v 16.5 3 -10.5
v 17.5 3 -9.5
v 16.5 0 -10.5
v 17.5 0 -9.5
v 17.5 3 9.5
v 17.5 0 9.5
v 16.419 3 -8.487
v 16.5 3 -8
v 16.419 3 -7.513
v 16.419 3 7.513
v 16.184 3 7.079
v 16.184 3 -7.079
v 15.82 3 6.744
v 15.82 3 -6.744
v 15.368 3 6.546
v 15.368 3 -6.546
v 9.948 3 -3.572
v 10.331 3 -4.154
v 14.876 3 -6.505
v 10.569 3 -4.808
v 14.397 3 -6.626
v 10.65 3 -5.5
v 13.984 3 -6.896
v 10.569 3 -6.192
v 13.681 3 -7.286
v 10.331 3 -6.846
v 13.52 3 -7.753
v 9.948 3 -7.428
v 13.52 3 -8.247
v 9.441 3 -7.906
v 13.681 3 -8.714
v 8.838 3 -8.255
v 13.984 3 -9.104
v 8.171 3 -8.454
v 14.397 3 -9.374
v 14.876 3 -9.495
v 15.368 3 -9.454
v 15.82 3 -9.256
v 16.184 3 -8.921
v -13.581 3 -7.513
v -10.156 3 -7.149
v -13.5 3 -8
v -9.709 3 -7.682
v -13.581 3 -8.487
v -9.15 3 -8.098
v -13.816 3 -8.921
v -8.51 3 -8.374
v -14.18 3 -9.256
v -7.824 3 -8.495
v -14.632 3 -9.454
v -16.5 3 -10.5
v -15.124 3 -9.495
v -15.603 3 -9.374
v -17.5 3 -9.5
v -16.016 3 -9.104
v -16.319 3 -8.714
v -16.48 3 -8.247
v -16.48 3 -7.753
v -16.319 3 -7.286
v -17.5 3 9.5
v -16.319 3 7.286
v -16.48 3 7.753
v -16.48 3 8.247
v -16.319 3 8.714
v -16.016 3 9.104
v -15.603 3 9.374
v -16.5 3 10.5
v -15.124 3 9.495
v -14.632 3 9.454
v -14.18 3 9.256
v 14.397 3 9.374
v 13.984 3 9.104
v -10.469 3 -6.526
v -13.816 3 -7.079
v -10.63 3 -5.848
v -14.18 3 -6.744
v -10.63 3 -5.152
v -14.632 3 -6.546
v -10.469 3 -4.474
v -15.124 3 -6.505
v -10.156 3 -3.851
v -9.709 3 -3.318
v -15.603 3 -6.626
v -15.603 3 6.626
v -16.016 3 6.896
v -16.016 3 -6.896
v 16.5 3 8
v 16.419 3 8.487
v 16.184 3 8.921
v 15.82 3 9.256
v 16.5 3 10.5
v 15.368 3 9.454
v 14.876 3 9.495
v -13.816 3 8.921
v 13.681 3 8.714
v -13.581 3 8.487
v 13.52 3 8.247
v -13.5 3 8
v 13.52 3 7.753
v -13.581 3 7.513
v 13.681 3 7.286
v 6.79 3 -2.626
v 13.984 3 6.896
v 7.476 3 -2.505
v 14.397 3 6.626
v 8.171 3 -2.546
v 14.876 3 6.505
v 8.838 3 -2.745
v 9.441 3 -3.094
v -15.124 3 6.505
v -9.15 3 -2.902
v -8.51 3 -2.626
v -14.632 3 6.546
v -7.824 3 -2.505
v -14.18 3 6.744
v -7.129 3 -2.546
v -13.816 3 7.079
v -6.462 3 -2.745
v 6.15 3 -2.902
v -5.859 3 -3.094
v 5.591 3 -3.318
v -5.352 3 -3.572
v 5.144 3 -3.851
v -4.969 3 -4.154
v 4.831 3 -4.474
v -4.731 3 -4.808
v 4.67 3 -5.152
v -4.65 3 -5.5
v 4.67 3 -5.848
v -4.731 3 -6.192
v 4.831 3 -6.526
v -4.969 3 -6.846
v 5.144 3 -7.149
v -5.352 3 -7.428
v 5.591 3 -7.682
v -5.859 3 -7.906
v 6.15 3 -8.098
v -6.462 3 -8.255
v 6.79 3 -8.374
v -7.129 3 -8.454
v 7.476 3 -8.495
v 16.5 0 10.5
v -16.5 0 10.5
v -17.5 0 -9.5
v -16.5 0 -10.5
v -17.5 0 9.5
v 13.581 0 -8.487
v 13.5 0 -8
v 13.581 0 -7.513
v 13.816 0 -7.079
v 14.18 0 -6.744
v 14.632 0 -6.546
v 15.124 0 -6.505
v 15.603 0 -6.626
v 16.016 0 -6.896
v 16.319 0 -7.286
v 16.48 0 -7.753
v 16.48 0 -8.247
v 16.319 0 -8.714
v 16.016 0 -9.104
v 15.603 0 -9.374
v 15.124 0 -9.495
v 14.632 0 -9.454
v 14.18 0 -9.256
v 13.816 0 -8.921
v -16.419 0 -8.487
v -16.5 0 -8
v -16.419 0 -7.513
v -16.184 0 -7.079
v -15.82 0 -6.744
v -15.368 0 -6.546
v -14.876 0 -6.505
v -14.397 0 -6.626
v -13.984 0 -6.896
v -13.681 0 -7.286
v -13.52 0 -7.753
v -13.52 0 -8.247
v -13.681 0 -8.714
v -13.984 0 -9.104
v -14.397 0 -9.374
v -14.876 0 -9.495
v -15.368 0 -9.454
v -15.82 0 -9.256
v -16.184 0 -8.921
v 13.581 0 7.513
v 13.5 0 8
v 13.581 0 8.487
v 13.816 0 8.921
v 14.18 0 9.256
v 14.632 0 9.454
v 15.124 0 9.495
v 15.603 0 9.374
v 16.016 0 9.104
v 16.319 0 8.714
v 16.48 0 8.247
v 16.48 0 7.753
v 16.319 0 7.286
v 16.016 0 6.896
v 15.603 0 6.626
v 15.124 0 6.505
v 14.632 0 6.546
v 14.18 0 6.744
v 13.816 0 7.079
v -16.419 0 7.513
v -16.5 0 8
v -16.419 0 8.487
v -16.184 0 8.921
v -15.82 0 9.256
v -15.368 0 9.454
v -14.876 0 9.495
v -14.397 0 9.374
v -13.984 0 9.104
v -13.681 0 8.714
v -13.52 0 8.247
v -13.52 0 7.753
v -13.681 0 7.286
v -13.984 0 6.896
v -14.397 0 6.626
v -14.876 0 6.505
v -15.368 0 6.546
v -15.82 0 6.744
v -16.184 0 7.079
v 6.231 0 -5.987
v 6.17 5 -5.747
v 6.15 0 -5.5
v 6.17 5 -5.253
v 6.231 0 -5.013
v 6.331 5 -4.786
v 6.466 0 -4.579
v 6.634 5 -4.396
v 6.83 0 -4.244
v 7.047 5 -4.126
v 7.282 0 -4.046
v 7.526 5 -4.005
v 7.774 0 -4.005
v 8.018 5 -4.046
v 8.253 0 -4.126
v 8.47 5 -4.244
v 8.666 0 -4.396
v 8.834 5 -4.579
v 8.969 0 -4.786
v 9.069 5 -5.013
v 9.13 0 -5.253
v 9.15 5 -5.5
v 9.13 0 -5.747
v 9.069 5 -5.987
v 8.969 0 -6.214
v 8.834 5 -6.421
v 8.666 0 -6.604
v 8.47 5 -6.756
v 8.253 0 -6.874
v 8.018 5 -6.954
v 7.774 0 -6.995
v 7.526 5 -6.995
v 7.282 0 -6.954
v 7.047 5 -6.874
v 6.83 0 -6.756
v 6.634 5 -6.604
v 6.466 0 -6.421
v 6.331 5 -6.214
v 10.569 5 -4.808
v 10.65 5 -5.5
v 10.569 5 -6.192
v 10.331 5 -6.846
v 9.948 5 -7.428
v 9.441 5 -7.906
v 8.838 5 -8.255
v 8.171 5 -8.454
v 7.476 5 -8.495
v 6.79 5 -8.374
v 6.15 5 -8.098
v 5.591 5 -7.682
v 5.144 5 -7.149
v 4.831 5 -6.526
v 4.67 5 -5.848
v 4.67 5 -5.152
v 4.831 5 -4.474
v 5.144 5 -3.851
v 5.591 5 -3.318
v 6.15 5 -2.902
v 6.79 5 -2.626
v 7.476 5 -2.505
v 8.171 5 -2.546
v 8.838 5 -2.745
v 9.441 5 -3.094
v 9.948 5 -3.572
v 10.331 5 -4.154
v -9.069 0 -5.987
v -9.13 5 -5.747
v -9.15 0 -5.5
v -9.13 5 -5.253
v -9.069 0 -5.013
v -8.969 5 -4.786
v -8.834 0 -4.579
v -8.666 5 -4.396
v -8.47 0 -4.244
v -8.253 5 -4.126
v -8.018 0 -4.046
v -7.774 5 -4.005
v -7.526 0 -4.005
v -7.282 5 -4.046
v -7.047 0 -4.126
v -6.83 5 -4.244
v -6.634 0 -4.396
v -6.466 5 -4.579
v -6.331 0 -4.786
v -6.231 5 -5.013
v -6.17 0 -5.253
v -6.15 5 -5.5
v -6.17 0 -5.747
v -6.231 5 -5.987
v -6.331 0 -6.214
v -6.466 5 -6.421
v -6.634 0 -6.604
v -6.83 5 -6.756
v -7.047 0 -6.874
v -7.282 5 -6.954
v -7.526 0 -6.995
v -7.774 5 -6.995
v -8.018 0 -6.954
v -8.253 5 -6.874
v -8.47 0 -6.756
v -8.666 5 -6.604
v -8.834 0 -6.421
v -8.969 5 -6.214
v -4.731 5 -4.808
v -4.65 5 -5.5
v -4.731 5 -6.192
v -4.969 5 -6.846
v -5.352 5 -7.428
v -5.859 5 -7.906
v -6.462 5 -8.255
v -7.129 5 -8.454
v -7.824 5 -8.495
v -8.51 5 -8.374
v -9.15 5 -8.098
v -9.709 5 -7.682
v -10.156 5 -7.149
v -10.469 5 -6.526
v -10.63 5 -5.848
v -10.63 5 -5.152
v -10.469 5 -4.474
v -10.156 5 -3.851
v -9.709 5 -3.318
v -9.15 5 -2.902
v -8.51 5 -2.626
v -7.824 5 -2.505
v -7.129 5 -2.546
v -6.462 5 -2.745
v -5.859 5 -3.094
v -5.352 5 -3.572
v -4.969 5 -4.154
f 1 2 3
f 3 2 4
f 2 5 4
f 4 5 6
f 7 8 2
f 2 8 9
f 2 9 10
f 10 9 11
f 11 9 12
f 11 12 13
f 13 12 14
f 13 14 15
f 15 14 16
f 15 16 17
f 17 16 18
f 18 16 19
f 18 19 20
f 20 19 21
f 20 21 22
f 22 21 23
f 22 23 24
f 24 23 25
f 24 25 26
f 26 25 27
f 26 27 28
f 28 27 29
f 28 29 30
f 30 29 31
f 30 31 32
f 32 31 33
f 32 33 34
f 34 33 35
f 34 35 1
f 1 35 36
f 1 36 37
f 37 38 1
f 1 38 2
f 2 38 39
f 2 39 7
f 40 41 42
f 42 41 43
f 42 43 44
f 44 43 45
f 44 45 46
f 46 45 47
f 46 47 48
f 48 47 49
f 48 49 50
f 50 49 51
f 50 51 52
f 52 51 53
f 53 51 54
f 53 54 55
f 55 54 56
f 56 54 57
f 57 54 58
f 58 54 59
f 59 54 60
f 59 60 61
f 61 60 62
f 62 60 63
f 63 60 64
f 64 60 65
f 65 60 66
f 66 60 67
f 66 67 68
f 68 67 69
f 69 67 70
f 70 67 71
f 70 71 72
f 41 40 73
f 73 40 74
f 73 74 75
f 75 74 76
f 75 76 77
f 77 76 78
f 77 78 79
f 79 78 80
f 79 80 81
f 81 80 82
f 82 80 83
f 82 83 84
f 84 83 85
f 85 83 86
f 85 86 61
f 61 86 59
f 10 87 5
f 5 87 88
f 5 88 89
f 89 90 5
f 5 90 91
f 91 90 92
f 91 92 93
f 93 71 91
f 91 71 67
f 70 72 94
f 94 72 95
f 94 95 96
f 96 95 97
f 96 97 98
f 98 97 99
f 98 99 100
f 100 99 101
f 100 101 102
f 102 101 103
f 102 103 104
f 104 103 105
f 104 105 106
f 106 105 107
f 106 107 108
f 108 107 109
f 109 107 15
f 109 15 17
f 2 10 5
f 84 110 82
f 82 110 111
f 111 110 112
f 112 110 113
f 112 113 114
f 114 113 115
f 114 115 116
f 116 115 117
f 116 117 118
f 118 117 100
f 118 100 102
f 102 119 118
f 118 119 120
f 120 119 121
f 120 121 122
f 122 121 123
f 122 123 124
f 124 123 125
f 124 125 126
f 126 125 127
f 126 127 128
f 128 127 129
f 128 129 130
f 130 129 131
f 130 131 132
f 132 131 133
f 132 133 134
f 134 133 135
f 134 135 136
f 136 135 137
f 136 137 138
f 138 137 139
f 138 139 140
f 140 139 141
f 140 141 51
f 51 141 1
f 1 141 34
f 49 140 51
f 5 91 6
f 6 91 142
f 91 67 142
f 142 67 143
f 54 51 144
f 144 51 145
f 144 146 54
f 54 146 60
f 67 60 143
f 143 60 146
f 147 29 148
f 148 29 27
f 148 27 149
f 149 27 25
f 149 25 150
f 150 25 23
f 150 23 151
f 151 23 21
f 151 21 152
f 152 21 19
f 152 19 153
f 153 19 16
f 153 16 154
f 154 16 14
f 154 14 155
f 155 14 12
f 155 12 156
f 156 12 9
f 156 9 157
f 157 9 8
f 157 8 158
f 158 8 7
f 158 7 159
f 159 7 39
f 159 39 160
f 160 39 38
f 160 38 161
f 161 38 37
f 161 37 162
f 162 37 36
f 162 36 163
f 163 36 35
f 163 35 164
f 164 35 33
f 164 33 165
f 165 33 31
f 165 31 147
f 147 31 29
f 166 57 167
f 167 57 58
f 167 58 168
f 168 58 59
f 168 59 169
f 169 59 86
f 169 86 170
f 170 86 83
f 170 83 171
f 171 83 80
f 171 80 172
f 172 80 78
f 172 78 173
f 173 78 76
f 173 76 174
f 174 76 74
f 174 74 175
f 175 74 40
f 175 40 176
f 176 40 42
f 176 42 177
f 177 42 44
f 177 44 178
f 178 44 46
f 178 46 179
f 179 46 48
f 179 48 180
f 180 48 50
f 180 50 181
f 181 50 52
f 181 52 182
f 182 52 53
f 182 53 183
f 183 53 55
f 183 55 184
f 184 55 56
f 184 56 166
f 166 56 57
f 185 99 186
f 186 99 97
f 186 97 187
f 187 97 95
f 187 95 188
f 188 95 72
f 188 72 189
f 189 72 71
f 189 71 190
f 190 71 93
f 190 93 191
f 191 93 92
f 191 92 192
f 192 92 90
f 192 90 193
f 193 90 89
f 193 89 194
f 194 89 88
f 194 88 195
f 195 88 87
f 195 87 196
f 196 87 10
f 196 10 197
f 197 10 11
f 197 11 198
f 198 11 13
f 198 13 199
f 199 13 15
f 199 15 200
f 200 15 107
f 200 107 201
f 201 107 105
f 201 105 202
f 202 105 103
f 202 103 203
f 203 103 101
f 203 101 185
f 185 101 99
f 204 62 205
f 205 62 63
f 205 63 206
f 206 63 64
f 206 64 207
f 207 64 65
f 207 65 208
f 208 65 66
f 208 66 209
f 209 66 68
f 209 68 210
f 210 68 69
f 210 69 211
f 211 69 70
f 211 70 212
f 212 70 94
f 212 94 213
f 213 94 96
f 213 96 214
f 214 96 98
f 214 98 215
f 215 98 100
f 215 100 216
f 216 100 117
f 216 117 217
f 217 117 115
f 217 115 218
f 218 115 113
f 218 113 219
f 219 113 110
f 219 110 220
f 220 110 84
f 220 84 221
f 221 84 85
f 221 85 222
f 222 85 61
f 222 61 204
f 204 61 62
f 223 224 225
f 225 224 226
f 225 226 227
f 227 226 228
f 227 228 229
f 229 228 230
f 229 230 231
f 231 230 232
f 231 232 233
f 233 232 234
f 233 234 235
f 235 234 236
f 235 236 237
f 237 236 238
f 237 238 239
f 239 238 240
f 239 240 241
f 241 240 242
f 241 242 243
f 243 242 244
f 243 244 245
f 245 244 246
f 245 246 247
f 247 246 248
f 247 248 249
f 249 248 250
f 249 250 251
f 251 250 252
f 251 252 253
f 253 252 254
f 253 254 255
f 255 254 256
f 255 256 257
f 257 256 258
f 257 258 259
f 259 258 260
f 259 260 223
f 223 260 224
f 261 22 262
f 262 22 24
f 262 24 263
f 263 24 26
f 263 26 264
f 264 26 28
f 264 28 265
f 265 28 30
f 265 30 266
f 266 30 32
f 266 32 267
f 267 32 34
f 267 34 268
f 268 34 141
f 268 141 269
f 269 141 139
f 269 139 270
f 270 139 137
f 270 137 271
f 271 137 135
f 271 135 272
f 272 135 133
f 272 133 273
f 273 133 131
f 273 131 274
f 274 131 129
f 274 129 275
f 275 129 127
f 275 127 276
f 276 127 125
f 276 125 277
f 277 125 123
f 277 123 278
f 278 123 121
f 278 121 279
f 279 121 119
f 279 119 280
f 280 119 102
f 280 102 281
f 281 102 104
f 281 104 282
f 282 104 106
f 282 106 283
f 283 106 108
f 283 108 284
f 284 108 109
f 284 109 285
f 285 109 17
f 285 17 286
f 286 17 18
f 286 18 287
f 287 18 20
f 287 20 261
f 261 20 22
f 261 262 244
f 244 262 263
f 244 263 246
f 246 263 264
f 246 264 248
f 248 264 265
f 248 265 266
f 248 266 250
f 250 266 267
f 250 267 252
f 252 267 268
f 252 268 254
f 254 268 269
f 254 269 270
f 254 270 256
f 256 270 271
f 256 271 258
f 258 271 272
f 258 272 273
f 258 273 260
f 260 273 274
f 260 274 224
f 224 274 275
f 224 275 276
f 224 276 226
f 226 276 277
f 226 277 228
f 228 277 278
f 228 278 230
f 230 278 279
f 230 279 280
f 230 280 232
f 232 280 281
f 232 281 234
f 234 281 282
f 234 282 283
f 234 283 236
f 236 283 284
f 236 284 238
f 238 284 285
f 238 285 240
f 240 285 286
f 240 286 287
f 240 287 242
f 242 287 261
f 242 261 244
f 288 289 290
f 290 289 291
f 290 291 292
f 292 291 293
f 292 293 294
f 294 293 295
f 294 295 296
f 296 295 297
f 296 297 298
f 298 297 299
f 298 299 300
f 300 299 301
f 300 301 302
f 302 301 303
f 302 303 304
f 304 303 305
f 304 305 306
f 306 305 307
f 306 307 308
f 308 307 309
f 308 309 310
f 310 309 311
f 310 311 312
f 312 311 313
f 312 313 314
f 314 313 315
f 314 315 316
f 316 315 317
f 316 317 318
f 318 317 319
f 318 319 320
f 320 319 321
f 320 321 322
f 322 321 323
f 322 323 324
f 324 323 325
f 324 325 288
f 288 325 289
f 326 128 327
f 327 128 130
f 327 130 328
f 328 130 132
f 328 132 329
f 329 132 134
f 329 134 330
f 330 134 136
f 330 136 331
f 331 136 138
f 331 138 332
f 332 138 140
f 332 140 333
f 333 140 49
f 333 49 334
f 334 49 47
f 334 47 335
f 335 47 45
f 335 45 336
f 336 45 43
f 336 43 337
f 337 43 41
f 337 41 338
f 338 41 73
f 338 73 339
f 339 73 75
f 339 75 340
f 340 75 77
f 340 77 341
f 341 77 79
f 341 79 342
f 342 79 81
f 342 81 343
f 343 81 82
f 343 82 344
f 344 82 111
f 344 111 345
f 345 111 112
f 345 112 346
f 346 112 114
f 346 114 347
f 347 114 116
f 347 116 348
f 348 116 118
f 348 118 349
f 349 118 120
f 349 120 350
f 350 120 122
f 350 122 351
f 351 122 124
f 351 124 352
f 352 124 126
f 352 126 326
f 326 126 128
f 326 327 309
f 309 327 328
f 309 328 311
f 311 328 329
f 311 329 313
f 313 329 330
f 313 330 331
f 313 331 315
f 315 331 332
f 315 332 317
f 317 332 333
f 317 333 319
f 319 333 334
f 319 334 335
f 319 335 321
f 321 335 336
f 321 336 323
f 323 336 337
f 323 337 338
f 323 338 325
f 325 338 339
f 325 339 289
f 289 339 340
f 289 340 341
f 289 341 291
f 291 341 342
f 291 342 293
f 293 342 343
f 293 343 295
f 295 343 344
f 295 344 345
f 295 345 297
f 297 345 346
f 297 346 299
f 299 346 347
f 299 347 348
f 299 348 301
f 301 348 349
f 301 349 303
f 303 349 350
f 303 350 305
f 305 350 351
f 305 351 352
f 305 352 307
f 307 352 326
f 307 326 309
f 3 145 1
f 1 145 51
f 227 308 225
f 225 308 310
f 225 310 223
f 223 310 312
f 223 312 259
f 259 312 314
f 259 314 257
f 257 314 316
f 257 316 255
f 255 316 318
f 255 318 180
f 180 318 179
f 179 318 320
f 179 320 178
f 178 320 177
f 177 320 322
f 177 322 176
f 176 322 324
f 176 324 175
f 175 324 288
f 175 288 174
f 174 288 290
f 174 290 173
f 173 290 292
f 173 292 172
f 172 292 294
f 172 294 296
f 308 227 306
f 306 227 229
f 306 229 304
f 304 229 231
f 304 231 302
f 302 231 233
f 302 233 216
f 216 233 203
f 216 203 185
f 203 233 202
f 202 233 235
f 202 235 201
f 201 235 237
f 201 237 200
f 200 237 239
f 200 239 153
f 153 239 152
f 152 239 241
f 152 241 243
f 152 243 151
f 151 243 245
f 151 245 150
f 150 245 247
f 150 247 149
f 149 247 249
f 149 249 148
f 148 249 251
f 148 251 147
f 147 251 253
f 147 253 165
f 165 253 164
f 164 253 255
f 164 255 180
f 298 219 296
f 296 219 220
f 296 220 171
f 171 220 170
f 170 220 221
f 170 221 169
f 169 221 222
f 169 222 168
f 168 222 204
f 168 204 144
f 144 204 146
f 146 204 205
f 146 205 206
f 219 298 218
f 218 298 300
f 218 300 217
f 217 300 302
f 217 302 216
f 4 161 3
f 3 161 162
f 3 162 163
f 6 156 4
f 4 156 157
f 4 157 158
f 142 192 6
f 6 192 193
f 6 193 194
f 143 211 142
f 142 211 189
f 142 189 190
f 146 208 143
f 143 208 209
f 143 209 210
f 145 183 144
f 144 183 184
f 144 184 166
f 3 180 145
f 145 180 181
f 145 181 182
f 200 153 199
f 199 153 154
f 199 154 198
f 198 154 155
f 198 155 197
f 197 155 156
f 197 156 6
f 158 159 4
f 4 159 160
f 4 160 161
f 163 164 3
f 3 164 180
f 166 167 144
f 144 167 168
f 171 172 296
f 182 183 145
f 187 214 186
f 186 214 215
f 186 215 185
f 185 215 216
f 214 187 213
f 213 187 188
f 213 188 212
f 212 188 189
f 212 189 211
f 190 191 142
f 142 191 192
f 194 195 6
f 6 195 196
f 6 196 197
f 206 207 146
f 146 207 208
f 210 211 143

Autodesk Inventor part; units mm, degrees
ref_plane "YZ Plane" through (0, 0, 0) normal (1, 0, 0) x (0, 1, 0)
ref_plane "XZ Plane" through (0, 0, 0) normal (0, 1, 0) x (-1, 0, 0)
ref_plane "XY Plane" through (0, 0, 0) normal (0, 0, 1) x (1, 0, 0)
sketch "Esboço1" plane through (0, 0, 0) normal (0, 1, 0) x (-1, 0, 0)
  line L0 (-17.5, 10.5) -> (17.5, 10.5)
  line L1 (17.5, 10.5) -> (17.5, -10.5)
  line L2 (17.5, -10.5) -> (-17.5, -10.5)
  line L3 (-17.5, -10.5) -> (-17.5, 10.5)
  line L4 (-17.5, 10.5) -> (17.5, -10.5) construction
  line L5 (17.5, 10.5) -> (-17.5, -10.5) construction
  point P0 (0, 0)
  point P1 (0, 0)
  dimension "d1" = 35
  dimension "d29" = 21
extrude "Extrusão1" add sketch "Esboço1" along normal blind 3
sketch "Esboço2" plane through (0, 3, 0) normal (0, 1, 0) x (1, 0, 0)
  line L0 (-17.5, -10.5) -> (17.5, -10.5) projected
  line L1 (-17.5, 10.5) -> (-17.5, -10.5) projected
  line L2 (-17.5, 0) -> (-17.5, 9.5148)
  line L3 (-17.5, 0) -> (-17.5, 10.5)
  line L4 (17.5, -10.5) -> (17.5, 10.5) projected
  circle A0 centre (7.65, 5.5) radius 1.5
  circle A1 centre (7.65, 5.5) radius 3
  circle A2 centre (-7.65, 5.5) radius 1.5
  circle A3 centre (-7.65, 5.5) radius 3
  line L5 (17.5, 10.5) -> (-17.5, 10.5) projected
  line L6 (-17.5, 5.5) -> (17.5, 5.5)
  dimension "d50" = 3
  dimension "d51" = 6
  dimension "d63" = 3
  dimension "d64" = 6
  dimension "d65" = 15.3
  dimension "d78" = 5
extrude "Extrusão2" add sketch "Esboço2" along normal blind 2 contours L6 A0 A1 | A1 L6 A0 | L6 A2 A3 | A3 L6 A2
sketch "Esboço5" plane through (0, 3, 0) normal (0, 1, 0) x (1, 0, 0)
  circle A0 centre (-15, -8) radius 1.5
  circle A1 centre (-15, 8) radius 1.5
  circle A2 centre (15, -8) radius 1.5
  circle A3 centre (15, 8) radius 1.5
  line L0 (17.5, 10.5) -> (-17.5, 10.5) projected
  line L1 (17.5, -10.5) -> (17.5, 10.5) projected
  line L2 (-17.5, -10.5) -> (17.5, -10.5) projected
  line L3 (-17.5, 10.5) -> (-17.5, -10.5) projected
  point P0 (0, 0)
  dimension "d32" = 3
  dimension "d33" = 2.5
  dimension "d34" = 2.5
  dimension "d35" = 2.5
  dimension "d36" = 2.5
  dimension "d37" = 2.5
  dimension "d38" = 2.5
  dimension "d39" = 2.5
  dimension "d40" = 2.5
extrude "Extrusão4" cut sketch "Esboço5" against normal through all contours A0 | A1 | A2 | A3
chamfer "Chanfro1" distance 1 angle 45 4 edges at (-17.5, 1.5, 10.5) (-17.5, 1.5, -10.5) (17.5, 1.5, 10.5) (17.5, 1.5, -10.5)
sketch "Esboço6" plane through (7.65, 5, -5.5) normal (0, 1, 0) x (1, 0, 0)
  circle A0 centre (0, 0) radius 1.5
  circle A1 centre (-15.3, 0) radius 3 projected
  circle A2 centre (-15.3, 0) radius 1.5 projected
  circle A3 centre (-15.3, 0) radius 1.5
  point P0 (-7.65, -5.5)
extrude "Extrusão5" cut sketch "Esboço6" against normal through all contours A0 | A2
properties part number "Sensor"
